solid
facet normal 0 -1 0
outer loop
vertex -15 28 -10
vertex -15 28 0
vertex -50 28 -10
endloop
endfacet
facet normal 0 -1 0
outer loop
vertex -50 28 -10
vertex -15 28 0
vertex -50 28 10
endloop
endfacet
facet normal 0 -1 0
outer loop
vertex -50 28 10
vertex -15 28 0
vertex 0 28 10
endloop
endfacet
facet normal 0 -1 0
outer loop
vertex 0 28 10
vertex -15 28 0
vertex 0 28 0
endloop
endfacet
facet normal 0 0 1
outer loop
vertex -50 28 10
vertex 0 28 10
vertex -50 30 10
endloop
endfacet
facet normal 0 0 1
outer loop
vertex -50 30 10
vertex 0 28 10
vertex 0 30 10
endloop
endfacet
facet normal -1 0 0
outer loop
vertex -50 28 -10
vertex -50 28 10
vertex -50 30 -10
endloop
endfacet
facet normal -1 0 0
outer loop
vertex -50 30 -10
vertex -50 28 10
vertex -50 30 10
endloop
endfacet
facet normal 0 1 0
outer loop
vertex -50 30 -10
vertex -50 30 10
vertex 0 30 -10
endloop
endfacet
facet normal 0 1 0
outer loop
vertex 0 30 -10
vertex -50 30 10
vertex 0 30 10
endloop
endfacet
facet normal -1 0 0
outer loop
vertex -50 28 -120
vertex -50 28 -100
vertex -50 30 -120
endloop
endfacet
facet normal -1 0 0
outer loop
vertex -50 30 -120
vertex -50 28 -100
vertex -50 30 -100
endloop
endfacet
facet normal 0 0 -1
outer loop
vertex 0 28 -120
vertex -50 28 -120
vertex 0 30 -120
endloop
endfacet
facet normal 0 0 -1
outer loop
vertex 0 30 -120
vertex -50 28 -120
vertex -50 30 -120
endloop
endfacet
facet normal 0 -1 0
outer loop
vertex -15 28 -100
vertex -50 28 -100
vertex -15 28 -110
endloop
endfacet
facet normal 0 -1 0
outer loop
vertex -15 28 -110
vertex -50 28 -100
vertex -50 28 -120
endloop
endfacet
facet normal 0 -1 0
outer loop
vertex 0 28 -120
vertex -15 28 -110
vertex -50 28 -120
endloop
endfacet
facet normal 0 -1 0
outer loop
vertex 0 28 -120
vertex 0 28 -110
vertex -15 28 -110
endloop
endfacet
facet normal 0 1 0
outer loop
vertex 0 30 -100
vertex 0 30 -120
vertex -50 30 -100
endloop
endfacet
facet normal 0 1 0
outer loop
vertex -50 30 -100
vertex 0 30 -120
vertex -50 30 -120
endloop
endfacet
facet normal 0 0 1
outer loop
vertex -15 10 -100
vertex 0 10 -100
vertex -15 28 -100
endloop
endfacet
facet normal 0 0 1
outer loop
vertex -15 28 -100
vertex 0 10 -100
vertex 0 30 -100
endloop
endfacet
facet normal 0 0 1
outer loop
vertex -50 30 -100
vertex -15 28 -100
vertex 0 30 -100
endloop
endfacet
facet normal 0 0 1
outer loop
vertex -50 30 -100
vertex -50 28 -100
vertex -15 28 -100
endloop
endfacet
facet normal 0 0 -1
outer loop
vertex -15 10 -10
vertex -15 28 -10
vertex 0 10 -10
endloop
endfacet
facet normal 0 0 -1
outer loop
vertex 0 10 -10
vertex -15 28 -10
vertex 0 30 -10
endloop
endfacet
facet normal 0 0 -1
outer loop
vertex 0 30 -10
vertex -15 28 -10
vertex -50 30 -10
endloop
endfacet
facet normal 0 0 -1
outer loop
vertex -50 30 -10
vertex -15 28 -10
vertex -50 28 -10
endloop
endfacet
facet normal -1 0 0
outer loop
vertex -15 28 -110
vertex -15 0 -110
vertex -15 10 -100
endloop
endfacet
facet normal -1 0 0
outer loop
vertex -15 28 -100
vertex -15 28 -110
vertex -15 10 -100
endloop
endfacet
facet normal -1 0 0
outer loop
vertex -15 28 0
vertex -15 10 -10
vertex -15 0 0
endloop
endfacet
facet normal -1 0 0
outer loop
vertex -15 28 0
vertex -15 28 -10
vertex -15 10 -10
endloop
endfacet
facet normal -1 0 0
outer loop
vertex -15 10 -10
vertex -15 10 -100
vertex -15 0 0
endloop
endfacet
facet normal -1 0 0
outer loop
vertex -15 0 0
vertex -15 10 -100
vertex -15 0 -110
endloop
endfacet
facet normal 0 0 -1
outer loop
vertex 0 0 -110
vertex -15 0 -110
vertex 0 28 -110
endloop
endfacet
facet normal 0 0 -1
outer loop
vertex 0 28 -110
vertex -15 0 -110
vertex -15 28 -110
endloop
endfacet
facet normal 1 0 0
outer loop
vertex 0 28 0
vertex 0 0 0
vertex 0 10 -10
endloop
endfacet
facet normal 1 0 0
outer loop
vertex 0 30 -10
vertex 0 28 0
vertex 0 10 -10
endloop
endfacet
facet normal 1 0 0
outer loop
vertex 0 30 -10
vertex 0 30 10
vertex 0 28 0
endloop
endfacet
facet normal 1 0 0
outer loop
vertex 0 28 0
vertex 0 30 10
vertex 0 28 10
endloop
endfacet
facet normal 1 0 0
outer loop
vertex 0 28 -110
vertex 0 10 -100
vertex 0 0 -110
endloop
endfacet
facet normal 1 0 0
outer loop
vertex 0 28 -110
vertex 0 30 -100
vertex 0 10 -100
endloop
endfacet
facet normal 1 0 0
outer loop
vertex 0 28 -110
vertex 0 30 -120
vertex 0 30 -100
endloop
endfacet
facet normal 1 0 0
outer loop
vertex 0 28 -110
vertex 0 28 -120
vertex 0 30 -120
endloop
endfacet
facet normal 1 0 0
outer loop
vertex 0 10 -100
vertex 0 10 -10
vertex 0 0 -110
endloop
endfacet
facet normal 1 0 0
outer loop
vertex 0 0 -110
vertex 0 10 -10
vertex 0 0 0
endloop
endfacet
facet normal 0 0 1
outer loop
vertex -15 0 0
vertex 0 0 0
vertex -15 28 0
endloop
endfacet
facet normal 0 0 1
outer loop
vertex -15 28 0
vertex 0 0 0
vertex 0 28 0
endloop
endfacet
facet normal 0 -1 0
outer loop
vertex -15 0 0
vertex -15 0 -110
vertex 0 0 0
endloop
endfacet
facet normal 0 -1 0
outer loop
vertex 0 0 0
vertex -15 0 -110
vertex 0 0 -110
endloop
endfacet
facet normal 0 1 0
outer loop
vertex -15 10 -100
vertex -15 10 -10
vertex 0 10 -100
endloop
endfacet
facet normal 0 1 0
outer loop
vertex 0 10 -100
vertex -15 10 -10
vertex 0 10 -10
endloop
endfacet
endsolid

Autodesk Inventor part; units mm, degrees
ref_plane "YZ Plane" through (0, 0, 0) normal (1, 0, 0) x (0, 1, 0)
ref_plane "XZ Plane" through (0, 0, 0) normal (0, 1, 0) x (-1, 0, 0)
ref_plane "XY Plane" through (0, 0, 0) normal (0, 0, 1) x (1, 0, 0)
sketch "Sketch1" plane through (0, 0, 0) normal (0, 1, 0) x (-1, 0, 0)
  line L0 (0, 0) -> (15, 0)
  line L1 (15, 0) -> (15, -110)
  line L2 (15, -110) -> (0, -110)
  line L3 (0, -110) -> (0, 0)
  dimension "d0" = 110
  dimension "d1" = 15
extrude "Extrusion1" add sketch "Sketch1" along normal blind 10
sketch "Sketch2" plane through (0, 10, 0) normal (0, 1, 0) x (1, 0, 0)
  line L0 (-15, 0) -> (0, 0) projected
  line L1 (0, 0) -> (0, 110) projected
  line L2 (-15, 0) -> (0, 0)
  line L3 (0, 0) -> (0, 10)
  line L4 (0, 10) -> (-15, 10)
  line L5 (-15, 10) -> (-15, 0)
  line L6 (0, 110) -> (-15, 110) projected
  line L7 (-15, 110) -> (0, 110)
  line L8 (0, 110) -> (0, 100)
  line L9 (0, 100) -> (-15, 100)
  line L10 (-15, 100) -> (-15, 110)
  dimension "d4" = 10
  dimension "d5" = 10
extrude "Extrusion2" add sketch "Sketch2" along normal blind 18
sketch "Sketch3" plane through (0, 28, 0) normal (0, 1, 0) x (1, 0, 0)
  line L0 (0, 0) -> (0, 10) projected
  line L1 (0, 10) -> (-50, 10)
  line L2 (-50, 10) -> (-50, -10)
  line L3 (-50, -10) -> (0, -10)
  line L4 (0, -10) -> (0, 10)
  line L5 (-15, 100) -> (0, 100) projected
  line L6 (0, 100) -> (-50, 100)
  line L7 (-50, 100) -> (-50, 120)
  line L8 (-50, 120) -> (0, 120)
  line L9 (0, 120) -> (0, 100)
  dimension "d8" = 50
  dimension "d9" = 20
  dimension "d10" = 50
  dimension "d11" = 20
extrude "Extrusion3" add sketch "Sketch3" along normal blind 2
properties part number "servobridge"
